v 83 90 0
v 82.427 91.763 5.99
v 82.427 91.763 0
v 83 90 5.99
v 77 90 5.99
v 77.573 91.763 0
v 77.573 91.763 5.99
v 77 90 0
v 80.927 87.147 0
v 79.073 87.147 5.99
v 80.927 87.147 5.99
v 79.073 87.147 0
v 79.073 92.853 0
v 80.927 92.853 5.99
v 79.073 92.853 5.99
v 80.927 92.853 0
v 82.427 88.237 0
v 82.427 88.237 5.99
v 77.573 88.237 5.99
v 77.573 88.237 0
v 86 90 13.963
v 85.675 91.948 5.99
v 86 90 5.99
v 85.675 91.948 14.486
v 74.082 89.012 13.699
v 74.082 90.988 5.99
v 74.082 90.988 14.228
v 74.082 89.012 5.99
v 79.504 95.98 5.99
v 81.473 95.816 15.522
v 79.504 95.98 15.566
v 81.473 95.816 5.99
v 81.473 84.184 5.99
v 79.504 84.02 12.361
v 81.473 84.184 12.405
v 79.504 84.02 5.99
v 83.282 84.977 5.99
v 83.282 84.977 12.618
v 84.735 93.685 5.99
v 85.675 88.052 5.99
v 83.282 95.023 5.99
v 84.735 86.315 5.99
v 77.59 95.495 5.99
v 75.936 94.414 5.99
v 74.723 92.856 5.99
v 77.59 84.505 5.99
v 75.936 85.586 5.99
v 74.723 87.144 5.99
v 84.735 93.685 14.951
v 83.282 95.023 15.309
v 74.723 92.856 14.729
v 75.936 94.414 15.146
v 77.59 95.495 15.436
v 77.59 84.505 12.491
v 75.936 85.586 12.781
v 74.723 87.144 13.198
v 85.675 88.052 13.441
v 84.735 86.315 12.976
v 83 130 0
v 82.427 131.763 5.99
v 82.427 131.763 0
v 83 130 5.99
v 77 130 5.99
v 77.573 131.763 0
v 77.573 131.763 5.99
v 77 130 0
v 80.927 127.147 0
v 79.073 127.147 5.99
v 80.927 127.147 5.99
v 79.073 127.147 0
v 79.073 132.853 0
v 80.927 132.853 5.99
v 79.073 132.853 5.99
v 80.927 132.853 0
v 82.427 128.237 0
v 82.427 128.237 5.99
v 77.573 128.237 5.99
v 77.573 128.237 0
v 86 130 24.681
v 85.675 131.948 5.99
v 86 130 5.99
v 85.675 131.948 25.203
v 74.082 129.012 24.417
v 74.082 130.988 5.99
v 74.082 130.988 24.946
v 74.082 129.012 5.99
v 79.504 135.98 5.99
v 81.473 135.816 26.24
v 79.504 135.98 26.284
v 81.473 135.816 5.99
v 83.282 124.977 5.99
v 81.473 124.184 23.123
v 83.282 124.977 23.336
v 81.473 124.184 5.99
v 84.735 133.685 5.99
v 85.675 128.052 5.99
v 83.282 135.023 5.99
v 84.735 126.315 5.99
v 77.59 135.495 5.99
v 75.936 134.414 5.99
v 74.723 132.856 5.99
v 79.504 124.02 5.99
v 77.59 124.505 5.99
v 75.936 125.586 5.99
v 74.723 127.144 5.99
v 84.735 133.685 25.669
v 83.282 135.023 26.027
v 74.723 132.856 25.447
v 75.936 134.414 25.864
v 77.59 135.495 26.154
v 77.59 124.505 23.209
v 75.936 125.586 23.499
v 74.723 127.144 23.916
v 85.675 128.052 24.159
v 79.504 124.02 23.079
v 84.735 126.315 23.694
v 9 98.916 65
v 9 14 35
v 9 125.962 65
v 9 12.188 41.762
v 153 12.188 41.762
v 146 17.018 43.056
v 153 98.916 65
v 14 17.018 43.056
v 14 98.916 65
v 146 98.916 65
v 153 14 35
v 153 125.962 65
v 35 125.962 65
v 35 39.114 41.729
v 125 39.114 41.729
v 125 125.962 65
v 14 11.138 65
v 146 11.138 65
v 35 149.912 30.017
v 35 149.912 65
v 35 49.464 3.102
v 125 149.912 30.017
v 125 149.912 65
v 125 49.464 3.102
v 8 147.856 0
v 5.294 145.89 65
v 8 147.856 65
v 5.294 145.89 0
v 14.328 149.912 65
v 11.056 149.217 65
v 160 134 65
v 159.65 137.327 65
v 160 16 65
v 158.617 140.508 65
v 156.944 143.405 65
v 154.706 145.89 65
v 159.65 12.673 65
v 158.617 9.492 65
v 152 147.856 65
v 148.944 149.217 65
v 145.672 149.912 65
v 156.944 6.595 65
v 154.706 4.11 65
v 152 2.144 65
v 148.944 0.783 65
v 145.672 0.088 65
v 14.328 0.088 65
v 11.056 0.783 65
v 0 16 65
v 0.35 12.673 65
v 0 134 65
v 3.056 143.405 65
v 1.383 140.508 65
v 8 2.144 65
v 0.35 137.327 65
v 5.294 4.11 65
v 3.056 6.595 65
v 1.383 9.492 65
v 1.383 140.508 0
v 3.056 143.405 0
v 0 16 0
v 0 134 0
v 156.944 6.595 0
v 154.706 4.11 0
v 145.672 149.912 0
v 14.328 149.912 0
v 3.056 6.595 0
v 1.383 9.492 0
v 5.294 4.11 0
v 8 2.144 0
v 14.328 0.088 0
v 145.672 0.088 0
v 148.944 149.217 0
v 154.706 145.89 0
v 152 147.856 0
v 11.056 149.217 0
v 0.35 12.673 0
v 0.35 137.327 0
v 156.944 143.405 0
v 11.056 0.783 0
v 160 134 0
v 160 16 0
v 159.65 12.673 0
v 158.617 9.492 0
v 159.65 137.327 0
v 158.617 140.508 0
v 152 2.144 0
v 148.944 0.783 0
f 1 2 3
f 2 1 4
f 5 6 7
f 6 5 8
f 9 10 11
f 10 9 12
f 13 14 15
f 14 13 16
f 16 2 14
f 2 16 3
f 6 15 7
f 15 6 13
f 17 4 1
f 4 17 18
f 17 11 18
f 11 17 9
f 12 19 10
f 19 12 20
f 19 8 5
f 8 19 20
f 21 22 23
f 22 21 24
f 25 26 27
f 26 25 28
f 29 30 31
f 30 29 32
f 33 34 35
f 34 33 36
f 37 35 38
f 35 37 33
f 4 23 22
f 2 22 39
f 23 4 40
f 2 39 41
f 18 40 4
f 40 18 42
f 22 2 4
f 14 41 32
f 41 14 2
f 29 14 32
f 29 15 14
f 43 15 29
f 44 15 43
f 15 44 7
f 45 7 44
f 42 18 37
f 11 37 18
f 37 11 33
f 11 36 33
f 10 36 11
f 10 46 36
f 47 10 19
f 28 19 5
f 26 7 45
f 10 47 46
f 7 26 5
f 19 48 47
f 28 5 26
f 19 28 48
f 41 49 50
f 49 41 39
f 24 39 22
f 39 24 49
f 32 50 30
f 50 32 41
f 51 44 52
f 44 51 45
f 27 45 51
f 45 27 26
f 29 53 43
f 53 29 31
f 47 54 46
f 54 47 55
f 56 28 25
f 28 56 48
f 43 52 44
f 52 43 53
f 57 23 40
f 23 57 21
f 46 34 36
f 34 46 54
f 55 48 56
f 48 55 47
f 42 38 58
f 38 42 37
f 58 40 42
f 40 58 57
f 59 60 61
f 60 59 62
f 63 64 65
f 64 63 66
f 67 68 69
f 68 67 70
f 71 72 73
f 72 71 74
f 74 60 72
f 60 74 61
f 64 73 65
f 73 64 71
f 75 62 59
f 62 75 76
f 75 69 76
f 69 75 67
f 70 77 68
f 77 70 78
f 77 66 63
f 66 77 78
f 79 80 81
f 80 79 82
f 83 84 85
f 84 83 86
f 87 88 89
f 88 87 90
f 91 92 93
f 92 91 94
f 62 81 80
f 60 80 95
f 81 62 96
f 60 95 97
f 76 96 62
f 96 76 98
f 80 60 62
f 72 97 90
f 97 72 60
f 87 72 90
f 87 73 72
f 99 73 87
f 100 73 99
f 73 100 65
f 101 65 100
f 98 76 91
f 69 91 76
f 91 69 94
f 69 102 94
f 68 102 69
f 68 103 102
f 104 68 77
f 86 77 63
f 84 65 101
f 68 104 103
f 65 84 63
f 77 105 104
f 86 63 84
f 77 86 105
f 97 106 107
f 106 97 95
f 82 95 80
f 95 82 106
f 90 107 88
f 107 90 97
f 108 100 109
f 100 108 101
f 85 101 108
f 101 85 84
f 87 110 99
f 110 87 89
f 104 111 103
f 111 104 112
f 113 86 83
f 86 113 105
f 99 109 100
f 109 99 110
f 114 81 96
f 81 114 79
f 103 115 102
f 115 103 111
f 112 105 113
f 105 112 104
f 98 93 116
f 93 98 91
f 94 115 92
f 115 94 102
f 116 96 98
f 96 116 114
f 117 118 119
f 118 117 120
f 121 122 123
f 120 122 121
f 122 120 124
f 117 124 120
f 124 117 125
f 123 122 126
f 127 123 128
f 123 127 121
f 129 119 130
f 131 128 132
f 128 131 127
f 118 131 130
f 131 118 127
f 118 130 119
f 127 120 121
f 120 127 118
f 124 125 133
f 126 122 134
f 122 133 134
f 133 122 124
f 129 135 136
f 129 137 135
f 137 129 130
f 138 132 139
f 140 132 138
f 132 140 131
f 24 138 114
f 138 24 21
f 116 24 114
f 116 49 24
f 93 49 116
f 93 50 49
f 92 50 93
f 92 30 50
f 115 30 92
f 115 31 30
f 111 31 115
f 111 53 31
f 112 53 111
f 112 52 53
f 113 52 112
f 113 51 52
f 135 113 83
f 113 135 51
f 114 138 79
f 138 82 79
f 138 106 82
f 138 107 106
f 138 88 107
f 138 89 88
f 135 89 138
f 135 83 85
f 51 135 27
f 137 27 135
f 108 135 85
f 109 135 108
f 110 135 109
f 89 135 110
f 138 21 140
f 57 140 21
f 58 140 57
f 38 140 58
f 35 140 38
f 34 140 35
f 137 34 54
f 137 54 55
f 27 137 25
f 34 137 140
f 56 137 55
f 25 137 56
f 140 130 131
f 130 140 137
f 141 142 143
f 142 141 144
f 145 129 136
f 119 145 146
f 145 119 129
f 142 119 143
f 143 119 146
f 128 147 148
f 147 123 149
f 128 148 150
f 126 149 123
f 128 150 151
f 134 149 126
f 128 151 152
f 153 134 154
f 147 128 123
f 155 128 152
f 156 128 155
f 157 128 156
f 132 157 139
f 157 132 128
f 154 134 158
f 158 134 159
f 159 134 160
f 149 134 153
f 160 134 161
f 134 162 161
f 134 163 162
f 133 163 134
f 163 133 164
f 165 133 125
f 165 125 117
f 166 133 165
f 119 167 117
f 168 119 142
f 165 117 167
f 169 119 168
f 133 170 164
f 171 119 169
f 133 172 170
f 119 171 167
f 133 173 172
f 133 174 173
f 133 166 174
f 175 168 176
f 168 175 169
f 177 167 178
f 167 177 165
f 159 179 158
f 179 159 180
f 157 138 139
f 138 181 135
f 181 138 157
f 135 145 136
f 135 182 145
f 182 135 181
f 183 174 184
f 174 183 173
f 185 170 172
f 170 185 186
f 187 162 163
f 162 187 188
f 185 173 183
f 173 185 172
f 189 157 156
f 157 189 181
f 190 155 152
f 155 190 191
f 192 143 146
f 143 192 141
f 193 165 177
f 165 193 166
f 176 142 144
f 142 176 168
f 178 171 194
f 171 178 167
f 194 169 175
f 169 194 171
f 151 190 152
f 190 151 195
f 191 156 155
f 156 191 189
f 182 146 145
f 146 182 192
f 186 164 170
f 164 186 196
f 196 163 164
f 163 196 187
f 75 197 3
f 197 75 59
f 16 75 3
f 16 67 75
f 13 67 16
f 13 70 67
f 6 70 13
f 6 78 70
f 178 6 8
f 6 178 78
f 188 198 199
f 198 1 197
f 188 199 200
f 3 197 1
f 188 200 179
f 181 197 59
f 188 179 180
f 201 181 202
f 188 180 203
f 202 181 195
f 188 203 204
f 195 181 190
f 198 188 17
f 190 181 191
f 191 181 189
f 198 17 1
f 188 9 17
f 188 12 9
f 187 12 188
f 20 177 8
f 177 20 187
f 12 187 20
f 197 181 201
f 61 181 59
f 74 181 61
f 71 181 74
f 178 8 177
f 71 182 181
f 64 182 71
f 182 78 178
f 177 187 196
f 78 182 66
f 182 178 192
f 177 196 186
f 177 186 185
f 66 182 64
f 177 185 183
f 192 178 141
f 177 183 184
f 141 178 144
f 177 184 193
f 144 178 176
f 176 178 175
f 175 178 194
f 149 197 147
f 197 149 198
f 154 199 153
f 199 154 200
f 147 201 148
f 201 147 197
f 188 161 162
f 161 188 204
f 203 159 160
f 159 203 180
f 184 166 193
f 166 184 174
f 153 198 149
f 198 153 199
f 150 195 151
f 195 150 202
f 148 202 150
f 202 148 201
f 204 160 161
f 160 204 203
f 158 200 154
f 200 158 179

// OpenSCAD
// form1 build plate supporter.

module buildPlate() {
    
    // Outer.
    cube([144,144,7]);
    
    // Aluminium block
    translate([5,5,6]) {
        cube([132,132,30]);
    }
    
    // Handle
    translate([(142-90)/2,(142-90)/2,-39.99]) {
        // Extend the handle area to allow the handle to slide into the support.
        cube([90,130,40]);
    }
}

module roundedCube(width, length, height) {
curveRadius = 16;
    
    translate([curveRadius,curveRadius,0]) {
        minkowski()
        {
            // 3D Minkowski sum all dimensions will be the sum of the two object's dimensions
            cube([width-(curveRadius*2), length-(curveRadius*2), (height -(curveRadius*2)) /2]);
            cylinder(r=curveRadius, h=(height/2) + curveRadius);
        }
    }
}

module screwHole(xPosition, yPosition, height) {
    translate([xPosition,yPosition,-0.01]) {
        cylinder(d=6, h=height);
        translate([0,0,6]) {
            cylinder(d=12, h=height);
        }
    }
}

module screwHoles(xPosition, height) {
    screwHole(xPosition, 90, height);
    screwHole(xPosition, 130, height);
}

module main() {
    
outerWidth = 160;
outerLength = 150;
baseWidth = 142;
totalHeight = 65;
cutoutHeight = 30;
plateXOffset = (outerWidth - baseWidth) /2;
plateYOffset = plateXOffset + 5;
    
    difference() {
        union() {
            roundedCube(outerWidth, outerLength, totalHeight);
            //cube([outerWidth, outerLength, totalHeight]);
        }
        union() {
            screwHoles(outerWidth/2, totalHeight);
            translate([plateXOffset, plateYOffset,totalHeight-cutoutHeight]) {
                rotate([15,0,0]) {
                    // plate part to be held is 142x142mm
                    #buildPlate();
                }
            }
        }
    }
}


main();
